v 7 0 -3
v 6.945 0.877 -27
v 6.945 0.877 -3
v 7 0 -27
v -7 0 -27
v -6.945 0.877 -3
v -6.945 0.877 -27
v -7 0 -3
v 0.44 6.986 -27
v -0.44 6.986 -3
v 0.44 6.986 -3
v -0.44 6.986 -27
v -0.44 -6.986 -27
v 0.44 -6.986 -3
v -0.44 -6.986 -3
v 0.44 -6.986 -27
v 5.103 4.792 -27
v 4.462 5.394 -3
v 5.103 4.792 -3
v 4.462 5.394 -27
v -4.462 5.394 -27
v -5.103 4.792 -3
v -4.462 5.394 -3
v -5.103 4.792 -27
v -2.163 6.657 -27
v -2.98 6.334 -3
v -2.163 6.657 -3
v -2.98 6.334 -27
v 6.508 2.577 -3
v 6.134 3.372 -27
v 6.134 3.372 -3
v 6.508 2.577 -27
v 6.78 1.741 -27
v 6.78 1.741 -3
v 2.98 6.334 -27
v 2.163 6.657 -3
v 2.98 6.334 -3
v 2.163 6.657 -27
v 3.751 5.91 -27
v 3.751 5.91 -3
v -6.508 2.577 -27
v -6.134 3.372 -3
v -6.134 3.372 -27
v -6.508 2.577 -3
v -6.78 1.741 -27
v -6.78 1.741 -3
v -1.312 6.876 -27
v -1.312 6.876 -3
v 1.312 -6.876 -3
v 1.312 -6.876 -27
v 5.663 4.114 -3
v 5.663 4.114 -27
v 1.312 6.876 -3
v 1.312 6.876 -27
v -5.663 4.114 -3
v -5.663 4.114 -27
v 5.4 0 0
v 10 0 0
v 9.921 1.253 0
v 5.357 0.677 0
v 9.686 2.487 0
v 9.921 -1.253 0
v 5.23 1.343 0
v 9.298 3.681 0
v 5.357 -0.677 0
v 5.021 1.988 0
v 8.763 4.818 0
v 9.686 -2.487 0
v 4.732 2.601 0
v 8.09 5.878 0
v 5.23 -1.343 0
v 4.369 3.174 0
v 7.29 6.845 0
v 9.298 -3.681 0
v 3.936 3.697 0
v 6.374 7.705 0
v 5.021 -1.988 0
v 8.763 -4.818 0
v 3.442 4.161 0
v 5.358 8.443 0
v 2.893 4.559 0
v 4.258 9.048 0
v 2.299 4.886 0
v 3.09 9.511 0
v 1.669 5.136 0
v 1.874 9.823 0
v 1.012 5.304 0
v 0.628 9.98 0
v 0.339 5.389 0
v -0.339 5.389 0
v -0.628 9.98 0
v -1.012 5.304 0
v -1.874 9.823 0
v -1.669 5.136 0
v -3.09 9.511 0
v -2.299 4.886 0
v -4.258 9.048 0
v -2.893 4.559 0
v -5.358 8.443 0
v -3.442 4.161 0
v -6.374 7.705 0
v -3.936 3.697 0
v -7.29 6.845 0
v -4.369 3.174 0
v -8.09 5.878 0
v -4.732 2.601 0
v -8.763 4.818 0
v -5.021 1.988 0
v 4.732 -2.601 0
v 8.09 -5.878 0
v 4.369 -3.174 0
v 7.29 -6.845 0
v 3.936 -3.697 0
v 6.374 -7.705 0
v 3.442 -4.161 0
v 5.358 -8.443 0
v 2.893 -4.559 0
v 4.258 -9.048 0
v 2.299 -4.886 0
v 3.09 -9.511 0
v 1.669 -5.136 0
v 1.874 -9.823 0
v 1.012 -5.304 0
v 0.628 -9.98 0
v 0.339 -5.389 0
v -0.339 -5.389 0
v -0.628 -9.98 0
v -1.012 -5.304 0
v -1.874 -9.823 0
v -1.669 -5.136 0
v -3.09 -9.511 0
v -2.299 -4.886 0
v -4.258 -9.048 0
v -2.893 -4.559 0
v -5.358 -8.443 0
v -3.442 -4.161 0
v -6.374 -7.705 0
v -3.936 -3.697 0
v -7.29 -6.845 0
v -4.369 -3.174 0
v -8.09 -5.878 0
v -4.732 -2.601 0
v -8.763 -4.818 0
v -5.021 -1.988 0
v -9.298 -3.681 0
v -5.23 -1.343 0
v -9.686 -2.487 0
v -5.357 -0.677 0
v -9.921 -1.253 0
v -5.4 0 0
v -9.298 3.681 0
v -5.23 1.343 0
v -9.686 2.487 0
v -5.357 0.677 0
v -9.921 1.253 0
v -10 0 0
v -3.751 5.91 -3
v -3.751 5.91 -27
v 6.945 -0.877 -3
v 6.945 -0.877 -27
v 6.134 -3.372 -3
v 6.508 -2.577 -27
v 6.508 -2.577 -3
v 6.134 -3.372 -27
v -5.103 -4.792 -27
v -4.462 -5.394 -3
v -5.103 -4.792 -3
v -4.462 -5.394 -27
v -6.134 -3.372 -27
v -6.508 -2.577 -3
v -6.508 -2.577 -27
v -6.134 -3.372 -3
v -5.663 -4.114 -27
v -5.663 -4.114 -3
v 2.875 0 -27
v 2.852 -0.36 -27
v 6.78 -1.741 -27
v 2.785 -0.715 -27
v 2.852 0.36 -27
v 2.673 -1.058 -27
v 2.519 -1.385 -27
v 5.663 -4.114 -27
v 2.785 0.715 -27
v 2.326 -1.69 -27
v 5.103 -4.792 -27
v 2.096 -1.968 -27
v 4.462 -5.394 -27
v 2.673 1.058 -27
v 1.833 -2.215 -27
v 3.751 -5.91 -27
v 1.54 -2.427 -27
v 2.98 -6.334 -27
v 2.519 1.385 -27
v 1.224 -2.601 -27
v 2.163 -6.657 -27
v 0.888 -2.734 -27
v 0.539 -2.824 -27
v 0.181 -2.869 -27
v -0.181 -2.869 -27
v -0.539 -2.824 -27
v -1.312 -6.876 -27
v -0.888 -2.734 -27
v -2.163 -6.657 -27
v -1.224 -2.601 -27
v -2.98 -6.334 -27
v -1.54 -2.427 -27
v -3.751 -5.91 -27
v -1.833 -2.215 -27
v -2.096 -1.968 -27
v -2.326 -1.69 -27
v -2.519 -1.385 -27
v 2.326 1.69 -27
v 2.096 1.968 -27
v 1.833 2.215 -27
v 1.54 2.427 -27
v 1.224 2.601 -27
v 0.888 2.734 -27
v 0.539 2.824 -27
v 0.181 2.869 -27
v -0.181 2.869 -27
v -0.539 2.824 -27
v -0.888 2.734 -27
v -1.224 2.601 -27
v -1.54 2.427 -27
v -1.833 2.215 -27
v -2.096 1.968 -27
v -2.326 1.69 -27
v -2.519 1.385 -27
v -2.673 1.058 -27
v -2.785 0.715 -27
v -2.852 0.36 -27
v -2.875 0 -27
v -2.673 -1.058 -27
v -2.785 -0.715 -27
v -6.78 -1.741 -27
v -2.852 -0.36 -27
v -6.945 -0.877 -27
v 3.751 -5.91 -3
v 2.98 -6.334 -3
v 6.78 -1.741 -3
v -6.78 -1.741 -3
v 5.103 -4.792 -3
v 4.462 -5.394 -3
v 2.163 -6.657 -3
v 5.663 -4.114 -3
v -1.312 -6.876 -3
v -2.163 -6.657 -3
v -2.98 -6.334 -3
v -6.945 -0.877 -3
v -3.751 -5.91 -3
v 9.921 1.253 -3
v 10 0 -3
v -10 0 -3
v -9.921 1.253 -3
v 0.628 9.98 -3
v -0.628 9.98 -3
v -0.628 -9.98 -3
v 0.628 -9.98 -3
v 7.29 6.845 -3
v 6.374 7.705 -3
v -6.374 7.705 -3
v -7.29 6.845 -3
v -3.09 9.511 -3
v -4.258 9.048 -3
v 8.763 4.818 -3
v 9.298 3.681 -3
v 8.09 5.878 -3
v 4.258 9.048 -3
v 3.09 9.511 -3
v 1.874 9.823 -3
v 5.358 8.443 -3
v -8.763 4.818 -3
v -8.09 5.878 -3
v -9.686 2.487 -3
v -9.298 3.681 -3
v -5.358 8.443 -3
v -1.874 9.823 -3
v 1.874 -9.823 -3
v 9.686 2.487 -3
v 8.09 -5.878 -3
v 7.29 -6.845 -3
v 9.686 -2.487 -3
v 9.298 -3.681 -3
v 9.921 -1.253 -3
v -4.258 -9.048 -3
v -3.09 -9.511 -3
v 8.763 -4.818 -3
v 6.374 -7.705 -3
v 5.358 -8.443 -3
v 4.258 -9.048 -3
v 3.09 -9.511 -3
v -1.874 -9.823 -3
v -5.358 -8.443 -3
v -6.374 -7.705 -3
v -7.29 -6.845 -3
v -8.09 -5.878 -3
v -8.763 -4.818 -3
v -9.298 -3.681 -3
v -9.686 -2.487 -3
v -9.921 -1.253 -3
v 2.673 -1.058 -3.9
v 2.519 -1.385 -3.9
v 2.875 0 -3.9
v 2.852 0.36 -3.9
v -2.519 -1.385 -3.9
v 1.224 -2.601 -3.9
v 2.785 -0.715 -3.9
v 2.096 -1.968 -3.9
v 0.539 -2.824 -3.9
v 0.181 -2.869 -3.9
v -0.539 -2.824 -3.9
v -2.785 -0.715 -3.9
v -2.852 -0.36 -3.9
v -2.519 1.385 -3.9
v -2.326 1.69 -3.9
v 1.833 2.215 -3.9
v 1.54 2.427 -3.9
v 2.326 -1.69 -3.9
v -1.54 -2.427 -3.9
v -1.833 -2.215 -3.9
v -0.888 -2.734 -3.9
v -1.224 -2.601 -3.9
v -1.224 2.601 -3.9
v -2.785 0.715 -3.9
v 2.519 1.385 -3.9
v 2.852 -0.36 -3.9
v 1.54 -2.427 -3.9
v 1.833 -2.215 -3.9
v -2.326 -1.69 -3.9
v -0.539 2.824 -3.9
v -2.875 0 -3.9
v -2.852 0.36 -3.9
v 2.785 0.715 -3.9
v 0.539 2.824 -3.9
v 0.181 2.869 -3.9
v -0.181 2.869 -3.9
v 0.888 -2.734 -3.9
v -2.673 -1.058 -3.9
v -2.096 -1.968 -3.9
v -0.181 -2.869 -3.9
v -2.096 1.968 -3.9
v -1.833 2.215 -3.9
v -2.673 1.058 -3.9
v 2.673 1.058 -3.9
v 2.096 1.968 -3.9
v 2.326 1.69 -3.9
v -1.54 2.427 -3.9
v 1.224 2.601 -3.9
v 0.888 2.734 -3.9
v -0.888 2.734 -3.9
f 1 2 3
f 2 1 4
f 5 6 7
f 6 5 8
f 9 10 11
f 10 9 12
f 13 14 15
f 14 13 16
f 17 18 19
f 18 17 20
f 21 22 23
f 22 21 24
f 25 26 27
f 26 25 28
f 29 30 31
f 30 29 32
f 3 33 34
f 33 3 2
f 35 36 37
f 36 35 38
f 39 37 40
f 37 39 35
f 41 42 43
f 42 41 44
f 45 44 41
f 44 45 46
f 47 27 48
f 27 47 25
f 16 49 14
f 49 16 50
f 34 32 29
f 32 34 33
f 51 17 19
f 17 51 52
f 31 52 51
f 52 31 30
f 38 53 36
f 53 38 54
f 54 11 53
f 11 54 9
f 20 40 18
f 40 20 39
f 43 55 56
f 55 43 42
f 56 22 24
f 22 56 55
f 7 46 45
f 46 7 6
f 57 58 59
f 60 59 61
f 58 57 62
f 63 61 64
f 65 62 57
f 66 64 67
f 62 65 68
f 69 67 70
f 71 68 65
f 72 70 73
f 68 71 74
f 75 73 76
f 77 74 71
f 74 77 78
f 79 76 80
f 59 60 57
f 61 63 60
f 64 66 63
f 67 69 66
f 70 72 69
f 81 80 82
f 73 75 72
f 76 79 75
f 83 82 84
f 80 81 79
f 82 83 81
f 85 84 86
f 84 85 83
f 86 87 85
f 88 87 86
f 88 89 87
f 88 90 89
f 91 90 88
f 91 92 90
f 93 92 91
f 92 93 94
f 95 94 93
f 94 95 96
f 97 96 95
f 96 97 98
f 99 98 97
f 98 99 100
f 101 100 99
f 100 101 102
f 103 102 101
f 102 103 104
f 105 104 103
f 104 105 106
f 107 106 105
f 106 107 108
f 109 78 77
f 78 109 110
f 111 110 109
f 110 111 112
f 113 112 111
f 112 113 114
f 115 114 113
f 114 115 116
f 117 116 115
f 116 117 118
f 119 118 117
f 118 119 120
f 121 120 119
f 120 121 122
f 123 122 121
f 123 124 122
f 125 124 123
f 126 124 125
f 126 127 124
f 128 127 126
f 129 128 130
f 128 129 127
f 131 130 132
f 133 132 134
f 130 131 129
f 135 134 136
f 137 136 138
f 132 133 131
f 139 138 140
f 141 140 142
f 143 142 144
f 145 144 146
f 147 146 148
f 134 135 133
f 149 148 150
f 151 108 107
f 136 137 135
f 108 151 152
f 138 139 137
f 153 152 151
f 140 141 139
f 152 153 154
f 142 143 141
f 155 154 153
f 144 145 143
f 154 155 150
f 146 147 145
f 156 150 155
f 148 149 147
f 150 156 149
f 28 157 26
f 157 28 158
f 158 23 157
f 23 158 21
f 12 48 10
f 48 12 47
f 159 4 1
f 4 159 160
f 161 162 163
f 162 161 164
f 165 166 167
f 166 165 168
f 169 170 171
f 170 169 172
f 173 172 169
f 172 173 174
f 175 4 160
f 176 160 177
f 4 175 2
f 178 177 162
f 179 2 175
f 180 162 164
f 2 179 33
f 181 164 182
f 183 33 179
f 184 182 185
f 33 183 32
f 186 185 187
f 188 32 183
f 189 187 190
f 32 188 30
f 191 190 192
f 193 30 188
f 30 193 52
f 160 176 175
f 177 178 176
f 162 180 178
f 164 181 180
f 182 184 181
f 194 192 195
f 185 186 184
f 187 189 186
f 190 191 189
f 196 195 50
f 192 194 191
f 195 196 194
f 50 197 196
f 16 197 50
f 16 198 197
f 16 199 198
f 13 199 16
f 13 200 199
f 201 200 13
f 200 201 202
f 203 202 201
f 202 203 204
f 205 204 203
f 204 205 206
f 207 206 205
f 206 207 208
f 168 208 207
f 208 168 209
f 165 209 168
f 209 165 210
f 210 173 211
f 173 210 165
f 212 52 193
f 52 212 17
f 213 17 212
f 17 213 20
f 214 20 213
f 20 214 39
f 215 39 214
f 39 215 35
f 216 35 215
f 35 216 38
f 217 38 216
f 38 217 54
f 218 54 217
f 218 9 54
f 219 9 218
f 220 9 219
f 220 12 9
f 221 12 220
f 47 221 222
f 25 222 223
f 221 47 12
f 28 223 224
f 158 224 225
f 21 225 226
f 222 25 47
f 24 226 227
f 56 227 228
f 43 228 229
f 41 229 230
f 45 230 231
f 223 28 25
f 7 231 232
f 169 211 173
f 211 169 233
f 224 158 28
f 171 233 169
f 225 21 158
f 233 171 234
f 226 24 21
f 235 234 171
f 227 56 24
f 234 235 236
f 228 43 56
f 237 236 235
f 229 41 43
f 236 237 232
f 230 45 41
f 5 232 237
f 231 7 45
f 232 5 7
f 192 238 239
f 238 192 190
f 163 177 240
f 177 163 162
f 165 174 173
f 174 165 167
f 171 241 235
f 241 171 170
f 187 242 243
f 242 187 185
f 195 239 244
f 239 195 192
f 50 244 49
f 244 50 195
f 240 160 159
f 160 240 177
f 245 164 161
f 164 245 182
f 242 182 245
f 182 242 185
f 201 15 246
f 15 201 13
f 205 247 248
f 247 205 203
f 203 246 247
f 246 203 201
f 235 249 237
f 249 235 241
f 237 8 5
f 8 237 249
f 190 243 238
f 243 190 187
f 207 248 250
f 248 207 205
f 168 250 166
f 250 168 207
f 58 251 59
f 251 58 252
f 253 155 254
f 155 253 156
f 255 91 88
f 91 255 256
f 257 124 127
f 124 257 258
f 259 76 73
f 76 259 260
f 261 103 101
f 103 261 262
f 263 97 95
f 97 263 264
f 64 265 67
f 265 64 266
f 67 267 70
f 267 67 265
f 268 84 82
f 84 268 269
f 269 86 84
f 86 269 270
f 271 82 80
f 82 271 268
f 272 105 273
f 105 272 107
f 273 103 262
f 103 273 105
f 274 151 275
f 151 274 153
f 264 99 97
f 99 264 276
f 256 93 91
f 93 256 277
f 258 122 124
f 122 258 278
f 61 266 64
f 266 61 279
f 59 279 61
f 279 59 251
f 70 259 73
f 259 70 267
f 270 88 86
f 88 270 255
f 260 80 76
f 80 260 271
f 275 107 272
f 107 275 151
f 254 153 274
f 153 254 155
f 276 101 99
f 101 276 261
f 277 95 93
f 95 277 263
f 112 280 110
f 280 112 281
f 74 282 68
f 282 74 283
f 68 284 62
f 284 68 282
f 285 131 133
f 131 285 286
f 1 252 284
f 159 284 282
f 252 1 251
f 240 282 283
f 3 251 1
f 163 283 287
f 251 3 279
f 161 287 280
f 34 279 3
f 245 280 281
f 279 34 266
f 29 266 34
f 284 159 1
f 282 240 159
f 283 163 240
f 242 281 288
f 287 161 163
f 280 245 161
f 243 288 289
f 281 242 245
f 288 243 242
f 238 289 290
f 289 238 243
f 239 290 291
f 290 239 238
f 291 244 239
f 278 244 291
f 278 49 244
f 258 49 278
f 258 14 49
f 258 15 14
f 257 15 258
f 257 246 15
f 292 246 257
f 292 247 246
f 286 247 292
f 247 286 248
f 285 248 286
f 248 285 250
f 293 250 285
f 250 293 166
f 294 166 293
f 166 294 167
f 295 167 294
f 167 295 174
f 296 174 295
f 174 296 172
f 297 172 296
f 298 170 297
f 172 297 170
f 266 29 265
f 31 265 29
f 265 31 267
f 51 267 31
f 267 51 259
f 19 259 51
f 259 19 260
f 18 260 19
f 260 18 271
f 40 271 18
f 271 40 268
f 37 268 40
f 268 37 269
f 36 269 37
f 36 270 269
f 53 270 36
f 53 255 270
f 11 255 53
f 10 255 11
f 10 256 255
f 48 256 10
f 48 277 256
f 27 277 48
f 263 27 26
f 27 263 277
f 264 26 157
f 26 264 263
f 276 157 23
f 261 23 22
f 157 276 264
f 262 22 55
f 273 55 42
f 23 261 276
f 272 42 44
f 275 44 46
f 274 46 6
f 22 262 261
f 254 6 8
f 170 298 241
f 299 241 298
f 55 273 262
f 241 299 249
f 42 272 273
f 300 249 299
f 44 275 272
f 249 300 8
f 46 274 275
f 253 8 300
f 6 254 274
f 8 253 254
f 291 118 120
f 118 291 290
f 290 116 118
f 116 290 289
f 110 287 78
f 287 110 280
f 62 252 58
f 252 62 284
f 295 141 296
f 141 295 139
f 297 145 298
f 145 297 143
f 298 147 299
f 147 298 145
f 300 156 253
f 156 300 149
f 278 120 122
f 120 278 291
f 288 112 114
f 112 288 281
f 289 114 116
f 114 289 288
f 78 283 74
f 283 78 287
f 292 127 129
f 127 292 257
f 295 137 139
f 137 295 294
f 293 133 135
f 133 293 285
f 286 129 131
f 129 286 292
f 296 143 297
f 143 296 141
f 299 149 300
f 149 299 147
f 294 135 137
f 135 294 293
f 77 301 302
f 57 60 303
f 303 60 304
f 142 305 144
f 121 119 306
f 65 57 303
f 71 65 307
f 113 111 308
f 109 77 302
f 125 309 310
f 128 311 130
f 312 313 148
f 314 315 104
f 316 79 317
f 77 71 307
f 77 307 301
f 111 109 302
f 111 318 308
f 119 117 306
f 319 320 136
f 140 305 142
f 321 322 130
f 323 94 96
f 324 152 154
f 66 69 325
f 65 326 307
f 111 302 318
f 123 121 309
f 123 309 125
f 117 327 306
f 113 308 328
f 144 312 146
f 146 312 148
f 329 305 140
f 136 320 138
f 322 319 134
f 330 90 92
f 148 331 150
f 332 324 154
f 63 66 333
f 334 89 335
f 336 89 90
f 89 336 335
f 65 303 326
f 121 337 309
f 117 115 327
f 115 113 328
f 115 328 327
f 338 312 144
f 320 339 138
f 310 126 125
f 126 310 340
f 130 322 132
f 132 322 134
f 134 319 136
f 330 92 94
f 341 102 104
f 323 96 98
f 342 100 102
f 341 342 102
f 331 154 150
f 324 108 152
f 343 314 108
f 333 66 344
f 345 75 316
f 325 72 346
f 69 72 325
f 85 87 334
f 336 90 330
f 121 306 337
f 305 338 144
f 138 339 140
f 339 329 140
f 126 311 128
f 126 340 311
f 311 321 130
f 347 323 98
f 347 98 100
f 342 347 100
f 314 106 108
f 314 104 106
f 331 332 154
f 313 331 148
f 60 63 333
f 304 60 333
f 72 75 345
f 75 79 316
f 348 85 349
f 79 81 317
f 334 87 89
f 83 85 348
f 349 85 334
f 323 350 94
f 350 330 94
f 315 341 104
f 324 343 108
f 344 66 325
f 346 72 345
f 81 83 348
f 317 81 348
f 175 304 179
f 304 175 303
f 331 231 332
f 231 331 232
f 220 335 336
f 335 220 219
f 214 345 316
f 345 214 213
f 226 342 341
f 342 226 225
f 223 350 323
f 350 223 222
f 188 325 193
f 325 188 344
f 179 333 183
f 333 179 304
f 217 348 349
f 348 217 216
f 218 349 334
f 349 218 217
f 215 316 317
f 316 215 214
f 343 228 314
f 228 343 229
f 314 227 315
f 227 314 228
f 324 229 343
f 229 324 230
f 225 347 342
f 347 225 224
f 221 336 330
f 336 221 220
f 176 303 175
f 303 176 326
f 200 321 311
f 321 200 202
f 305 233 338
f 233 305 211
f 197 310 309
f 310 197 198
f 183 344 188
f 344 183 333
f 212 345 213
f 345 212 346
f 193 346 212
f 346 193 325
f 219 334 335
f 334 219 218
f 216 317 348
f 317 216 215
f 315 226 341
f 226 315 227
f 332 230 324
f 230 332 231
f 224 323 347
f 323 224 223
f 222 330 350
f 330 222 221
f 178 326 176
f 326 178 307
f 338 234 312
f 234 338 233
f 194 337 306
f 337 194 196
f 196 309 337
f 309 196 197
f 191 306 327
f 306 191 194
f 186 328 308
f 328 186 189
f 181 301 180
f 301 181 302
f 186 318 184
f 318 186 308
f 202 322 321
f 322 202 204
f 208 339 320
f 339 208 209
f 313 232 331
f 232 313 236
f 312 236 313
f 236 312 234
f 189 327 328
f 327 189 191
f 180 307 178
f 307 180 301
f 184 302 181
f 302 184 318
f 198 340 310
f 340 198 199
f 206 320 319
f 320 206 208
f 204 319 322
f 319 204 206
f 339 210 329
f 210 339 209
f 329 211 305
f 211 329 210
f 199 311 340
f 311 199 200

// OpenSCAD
$fn = 50;


difference() {
	union() {
		translate(v = [0, 0, -27.0000000000]) {
			cylinder(h = 27, r = 7.0000000000);
		}
		translate(v = [0, 0, -3.0000000000]) {
			cylinder(h = 3, r = 10.0000000000);
		}
	}
	union() {
		translate(v = [0, 0, 0]) {
			rotate(a = [0, 0, 0]) {
				difference() {
					union() {
						#translate(v = [0, 0, -27.0000000000]) {
							cylinder(h = 27, r = 2.6000000000);
						}
						#translate(v = [0, 0, -3.9000000000]) {
							cylinder(h = 3.9000000000, r1 = 2.8750000000, r2 = 5.4000000000);
						}
						#translate(v = [0, 0, -27.0000000000]) {
							cylinder(h = 27, r = 2.8750000000);
						}
						#translate(v = [0, 0, -27.0000000000]) {
							cylinder(h = 27, r = 2.6000000000);
						}
					}
					union();
				}
			}
		}
	}
}
